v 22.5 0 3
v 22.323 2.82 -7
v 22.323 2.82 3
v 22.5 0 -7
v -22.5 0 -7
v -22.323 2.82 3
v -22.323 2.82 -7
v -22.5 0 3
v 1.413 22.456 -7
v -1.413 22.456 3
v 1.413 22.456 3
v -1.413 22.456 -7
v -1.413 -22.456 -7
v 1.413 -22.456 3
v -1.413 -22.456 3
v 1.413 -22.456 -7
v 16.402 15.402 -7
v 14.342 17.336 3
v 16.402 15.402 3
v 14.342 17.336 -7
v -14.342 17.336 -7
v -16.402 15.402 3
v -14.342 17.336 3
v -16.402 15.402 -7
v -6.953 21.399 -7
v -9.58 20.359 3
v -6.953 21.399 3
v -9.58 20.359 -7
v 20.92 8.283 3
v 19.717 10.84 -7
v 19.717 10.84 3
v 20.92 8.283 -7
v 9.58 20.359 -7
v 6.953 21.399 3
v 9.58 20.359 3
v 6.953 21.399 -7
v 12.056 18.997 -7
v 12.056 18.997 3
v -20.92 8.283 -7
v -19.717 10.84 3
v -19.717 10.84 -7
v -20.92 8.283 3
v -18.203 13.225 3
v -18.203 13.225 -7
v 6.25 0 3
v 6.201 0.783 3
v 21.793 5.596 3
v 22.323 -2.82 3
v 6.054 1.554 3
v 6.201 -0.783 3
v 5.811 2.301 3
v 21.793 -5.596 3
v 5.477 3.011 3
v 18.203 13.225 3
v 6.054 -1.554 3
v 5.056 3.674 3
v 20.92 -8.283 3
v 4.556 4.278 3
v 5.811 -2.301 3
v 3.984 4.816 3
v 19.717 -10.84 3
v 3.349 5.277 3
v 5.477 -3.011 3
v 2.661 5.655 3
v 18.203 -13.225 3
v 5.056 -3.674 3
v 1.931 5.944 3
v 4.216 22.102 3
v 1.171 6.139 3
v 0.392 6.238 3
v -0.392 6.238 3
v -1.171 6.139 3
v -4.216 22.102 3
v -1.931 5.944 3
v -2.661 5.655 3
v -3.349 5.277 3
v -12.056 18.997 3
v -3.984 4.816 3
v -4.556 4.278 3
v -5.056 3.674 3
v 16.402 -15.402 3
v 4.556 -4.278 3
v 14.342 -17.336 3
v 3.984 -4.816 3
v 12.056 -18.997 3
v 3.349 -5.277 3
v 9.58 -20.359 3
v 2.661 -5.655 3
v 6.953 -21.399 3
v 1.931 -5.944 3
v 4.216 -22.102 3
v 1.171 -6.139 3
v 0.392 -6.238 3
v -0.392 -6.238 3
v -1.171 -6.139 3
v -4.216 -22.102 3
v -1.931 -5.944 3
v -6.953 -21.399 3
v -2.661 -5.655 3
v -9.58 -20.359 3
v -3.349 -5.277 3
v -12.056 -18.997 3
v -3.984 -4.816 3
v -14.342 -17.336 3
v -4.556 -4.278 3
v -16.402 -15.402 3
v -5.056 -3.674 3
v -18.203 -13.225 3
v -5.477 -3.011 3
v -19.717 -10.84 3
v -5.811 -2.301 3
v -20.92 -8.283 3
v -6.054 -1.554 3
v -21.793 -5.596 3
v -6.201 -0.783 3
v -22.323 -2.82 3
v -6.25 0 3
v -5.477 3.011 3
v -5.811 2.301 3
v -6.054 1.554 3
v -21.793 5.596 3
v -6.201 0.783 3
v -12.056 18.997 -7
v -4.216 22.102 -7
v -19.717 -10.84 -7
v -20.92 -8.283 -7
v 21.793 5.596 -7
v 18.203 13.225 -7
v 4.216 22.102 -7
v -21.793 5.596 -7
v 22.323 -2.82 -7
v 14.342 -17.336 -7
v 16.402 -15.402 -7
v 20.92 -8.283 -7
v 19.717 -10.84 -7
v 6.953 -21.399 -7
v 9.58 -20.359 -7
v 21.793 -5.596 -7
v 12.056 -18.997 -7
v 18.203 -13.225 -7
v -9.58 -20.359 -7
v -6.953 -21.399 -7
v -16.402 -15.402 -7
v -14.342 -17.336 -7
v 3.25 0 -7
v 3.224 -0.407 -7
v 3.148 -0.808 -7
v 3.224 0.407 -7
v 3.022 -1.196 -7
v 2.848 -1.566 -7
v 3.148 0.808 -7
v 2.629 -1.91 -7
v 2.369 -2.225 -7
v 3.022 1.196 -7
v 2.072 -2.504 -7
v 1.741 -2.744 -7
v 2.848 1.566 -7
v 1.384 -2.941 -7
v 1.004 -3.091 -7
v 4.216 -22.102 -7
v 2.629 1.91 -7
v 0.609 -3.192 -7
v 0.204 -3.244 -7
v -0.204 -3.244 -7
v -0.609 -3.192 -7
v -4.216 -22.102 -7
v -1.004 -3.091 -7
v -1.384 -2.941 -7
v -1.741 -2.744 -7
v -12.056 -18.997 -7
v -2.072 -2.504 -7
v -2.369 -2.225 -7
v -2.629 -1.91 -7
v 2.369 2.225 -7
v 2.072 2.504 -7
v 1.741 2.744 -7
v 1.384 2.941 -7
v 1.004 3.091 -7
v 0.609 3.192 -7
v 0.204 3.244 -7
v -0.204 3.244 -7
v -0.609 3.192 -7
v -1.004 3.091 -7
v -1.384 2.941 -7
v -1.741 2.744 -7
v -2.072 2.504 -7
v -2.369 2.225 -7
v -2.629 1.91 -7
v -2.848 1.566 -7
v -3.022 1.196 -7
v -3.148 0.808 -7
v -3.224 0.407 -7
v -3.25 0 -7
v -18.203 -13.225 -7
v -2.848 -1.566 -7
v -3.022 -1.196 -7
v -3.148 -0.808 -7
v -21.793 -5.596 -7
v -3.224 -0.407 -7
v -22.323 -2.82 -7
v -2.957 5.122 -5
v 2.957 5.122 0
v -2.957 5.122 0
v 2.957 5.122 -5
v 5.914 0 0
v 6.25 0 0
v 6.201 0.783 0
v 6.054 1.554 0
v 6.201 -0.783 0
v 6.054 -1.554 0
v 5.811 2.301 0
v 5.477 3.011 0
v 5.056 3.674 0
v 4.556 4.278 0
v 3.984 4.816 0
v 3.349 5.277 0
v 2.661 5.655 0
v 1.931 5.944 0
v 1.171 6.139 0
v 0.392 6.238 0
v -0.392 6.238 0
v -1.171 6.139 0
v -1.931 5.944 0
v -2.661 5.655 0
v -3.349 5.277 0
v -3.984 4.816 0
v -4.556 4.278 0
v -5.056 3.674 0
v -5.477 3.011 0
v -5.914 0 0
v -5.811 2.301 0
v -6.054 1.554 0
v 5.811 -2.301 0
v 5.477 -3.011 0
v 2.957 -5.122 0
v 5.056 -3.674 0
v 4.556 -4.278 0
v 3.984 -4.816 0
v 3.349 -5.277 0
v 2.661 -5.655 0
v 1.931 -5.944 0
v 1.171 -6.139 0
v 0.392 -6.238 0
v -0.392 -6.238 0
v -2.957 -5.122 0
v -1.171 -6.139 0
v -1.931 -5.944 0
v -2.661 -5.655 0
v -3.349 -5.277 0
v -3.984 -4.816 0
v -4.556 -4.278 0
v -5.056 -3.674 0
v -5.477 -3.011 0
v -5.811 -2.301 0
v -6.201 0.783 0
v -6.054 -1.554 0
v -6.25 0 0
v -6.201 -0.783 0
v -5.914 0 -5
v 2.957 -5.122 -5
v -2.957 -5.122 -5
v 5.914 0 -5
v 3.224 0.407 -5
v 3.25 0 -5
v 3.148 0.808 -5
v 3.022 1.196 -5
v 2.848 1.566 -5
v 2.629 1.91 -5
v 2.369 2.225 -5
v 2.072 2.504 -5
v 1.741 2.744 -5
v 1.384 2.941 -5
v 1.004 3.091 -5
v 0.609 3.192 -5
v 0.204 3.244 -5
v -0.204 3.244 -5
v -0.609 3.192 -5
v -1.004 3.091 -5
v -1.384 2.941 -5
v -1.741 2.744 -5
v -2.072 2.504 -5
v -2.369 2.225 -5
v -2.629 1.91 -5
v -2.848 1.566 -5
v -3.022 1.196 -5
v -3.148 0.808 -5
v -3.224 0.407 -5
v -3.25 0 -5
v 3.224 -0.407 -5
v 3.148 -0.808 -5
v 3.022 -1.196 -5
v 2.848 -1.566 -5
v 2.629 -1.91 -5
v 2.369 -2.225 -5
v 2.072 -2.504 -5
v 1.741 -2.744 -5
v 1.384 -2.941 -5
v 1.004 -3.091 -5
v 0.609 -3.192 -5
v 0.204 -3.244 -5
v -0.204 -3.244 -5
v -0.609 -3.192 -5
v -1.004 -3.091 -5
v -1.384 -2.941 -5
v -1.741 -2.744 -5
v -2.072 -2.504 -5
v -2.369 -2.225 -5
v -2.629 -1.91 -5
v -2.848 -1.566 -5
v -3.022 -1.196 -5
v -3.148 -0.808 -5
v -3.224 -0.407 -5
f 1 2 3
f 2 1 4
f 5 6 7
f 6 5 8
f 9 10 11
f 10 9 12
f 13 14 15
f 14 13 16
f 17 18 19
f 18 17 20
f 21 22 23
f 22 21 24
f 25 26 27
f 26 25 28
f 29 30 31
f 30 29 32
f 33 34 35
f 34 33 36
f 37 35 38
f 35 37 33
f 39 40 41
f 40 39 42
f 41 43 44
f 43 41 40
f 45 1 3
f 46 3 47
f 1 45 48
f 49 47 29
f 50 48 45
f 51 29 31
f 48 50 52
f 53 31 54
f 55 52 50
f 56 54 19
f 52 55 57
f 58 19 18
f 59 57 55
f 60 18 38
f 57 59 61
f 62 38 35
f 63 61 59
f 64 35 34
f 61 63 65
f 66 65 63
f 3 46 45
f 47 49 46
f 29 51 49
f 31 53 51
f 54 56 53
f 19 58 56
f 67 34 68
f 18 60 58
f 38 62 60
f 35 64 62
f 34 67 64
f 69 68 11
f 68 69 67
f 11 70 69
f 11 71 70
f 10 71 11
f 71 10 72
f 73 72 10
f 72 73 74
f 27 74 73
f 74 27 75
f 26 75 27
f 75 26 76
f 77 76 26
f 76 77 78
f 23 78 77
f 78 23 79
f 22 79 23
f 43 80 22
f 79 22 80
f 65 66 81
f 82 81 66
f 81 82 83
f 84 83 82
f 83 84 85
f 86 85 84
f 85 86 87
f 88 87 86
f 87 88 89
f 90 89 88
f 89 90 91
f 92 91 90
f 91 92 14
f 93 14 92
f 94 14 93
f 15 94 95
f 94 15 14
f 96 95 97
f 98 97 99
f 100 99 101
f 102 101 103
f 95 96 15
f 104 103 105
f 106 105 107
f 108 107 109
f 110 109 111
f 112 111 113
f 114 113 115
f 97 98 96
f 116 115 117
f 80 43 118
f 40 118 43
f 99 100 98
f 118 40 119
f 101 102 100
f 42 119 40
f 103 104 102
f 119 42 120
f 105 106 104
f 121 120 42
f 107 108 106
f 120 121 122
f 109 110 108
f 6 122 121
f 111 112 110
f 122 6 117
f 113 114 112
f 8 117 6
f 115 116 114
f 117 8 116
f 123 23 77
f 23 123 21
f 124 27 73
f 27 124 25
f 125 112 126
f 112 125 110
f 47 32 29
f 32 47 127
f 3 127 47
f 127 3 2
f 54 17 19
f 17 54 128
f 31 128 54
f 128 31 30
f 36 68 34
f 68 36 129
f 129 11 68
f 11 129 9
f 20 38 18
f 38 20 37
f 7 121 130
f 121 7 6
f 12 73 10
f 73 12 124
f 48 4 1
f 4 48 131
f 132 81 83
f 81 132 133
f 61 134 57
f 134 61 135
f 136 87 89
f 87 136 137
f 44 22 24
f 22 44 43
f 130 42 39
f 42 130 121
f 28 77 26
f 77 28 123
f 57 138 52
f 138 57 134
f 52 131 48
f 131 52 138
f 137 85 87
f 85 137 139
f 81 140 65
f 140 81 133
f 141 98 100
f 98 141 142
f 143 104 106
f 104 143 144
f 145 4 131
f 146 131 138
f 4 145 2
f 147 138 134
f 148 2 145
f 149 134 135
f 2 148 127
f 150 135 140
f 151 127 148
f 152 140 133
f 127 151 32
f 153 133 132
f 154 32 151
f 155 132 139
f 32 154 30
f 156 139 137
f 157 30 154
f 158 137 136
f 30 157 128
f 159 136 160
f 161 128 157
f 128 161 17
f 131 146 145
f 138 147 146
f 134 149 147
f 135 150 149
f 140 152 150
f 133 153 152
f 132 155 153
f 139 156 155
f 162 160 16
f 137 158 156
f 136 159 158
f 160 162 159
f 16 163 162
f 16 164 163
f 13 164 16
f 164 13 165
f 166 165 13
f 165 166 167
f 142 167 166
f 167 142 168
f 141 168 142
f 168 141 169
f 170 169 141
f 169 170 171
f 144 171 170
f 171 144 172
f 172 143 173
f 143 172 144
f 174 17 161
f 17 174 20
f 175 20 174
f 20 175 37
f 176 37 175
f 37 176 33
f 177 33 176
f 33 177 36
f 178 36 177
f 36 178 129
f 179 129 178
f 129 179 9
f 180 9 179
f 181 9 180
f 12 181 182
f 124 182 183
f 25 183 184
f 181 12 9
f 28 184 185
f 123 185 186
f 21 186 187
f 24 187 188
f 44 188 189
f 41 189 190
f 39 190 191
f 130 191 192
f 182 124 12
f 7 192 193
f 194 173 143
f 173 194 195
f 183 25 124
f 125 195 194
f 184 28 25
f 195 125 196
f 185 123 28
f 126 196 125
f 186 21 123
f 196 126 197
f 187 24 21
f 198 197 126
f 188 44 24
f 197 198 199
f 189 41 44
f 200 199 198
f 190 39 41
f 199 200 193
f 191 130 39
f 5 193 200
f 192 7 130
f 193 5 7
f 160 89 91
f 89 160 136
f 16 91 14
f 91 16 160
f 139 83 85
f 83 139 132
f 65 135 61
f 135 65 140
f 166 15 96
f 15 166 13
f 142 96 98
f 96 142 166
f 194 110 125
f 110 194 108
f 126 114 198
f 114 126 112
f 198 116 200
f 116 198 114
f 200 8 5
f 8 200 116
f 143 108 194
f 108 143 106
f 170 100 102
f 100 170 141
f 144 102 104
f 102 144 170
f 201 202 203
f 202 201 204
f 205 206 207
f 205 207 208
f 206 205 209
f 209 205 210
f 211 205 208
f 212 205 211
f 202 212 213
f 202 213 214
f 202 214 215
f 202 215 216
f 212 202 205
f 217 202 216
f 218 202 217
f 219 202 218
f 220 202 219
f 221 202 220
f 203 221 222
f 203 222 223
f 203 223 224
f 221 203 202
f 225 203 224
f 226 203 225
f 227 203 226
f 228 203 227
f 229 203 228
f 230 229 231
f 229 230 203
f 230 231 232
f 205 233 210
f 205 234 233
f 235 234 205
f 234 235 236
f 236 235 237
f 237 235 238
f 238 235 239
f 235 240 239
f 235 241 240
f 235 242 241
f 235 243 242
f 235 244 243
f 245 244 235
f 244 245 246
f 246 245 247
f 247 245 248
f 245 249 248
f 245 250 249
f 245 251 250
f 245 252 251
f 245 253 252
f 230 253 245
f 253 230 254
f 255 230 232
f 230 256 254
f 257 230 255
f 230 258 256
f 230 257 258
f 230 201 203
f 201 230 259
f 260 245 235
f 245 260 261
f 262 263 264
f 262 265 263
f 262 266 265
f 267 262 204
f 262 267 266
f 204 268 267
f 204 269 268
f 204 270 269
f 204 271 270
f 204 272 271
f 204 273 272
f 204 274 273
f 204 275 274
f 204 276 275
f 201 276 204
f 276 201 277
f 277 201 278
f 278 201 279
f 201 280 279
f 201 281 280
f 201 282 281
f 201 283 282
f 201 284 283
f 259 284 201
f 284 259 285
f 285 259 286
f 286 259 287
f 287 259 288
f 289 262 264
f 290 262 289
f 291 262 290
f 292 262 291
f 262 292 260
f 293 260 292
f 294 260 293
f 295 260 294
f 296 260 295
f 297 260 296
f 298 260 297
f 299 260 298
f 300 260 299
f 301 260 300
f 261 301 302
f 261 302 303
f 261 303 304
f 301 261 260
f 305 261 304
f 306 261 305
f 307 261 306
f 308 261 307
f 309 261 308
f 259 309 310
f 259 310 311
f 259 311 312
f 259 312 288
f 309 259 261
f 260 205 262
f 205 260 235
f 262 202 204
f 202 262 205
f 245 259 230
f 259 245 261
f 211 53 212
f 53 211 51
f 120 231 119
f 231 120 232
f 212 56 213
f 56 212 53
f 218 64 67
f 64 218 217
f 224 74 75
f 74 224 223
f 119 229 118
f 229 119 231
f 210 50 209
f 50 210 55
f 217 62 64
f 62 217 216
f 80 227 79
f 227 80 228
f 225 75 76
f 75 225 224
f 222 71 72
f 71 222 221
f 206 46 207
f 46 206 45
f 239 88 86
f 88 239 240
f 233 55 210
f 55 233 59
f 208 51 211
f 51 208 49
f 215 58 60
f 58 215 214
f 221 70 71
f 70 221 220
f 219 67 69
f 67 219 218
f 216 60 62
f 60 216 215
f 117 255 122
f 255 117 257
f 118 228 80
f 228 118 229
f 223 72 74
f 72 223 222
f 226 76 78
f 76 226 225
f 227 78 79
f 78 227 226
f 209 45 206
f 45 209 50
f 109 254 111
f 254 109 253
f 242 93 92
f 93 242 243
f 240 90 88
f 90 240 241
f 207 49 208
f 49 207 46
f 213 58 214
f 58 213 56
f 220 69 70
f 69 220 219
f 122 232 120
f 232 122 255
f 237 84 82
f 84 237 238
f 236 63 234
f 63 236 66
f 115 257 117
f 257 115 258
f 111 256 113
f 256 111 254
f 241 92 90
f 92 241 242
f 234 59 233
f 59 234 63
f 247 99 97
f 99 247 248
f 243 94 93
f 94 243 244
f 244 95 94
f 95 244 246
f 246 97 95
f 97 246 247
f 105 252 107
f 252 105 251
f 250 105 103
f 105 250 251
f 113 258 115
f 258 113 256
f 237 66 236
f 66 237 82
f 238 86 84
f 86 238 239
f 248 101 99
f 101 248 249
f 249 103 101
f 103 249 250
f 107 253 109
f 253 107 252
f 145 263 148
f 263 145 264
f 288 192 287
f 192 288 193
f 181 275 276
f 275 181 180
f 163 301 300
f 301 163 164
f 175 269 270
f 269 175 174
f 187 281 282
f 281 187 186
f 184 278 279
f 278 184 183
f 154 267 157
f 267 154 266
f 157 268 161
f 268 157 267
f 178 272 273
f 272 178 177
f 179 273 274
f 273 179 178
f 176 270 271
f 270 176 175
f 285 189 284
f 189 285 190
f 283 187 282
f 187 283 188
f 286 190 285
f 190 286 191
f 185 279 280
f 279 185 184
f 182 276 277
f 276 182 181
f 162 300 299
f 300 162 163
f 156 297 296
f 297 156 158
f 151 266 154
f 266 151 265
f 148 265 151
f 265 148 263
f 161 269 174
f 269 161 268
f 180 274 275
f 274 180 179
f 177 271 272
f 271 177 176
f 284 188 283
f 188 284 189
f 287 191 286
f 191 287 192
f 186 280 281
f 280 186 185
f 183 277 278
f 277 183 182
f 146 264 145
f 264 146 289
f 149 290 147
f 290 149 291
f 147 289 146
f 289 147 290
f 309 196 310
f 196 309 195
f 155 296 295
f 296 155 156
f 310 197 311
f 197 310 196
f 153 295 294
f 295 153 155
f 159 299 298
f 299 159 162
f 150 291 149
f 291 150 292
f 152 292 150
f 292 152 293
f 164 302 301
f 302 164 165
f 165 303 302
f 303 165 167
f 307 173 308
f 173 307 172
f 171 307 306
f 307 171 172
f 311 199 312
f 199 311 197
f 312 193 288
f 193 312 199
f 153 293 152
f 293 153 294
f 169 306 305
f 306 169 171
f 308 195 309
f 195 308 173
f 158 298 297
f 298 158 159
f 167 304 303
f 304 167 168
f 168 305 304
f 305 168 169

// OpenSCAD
$fn = 50;


difference() {
	union() {
		translate(v = [0, 0, -7.0000000000]) {
			cylinder(h = 10.0000000000, r = 22.5000000000);
		}
		#translate(v = [0, 0, -8.5000000000]) {
			cylinder(h = 8.5000000000, r = 2.8750000000);
		}
	}
	union() {
		translate(v = [0, 0, 0]) {
			rotate(a = [0, 0, 0]) {
				difference() {
					union() {
						translate(v = [0, 0, -5]) {
							linear_extrude(height = 5) {
								polygon(points = [[5.9142500000, 0.0000000000], [2.9571250000, 5.1218907443], [-2.9571250000, 5.1218907443], [-5.9142500000, 0.0000000000], [-2.9571250000, -5.1218907443], [2.9571250000, -5.1218907443]]);
							}
						}
					}
					union();
				}
			}
		}
		#cylinder(h = 3, r = 6.2500000000);
		#translate(v = [0, 0, -100.0000000000]) {
			cylinder(h = 200, r = 3.2500000000);
		}
	}
}
